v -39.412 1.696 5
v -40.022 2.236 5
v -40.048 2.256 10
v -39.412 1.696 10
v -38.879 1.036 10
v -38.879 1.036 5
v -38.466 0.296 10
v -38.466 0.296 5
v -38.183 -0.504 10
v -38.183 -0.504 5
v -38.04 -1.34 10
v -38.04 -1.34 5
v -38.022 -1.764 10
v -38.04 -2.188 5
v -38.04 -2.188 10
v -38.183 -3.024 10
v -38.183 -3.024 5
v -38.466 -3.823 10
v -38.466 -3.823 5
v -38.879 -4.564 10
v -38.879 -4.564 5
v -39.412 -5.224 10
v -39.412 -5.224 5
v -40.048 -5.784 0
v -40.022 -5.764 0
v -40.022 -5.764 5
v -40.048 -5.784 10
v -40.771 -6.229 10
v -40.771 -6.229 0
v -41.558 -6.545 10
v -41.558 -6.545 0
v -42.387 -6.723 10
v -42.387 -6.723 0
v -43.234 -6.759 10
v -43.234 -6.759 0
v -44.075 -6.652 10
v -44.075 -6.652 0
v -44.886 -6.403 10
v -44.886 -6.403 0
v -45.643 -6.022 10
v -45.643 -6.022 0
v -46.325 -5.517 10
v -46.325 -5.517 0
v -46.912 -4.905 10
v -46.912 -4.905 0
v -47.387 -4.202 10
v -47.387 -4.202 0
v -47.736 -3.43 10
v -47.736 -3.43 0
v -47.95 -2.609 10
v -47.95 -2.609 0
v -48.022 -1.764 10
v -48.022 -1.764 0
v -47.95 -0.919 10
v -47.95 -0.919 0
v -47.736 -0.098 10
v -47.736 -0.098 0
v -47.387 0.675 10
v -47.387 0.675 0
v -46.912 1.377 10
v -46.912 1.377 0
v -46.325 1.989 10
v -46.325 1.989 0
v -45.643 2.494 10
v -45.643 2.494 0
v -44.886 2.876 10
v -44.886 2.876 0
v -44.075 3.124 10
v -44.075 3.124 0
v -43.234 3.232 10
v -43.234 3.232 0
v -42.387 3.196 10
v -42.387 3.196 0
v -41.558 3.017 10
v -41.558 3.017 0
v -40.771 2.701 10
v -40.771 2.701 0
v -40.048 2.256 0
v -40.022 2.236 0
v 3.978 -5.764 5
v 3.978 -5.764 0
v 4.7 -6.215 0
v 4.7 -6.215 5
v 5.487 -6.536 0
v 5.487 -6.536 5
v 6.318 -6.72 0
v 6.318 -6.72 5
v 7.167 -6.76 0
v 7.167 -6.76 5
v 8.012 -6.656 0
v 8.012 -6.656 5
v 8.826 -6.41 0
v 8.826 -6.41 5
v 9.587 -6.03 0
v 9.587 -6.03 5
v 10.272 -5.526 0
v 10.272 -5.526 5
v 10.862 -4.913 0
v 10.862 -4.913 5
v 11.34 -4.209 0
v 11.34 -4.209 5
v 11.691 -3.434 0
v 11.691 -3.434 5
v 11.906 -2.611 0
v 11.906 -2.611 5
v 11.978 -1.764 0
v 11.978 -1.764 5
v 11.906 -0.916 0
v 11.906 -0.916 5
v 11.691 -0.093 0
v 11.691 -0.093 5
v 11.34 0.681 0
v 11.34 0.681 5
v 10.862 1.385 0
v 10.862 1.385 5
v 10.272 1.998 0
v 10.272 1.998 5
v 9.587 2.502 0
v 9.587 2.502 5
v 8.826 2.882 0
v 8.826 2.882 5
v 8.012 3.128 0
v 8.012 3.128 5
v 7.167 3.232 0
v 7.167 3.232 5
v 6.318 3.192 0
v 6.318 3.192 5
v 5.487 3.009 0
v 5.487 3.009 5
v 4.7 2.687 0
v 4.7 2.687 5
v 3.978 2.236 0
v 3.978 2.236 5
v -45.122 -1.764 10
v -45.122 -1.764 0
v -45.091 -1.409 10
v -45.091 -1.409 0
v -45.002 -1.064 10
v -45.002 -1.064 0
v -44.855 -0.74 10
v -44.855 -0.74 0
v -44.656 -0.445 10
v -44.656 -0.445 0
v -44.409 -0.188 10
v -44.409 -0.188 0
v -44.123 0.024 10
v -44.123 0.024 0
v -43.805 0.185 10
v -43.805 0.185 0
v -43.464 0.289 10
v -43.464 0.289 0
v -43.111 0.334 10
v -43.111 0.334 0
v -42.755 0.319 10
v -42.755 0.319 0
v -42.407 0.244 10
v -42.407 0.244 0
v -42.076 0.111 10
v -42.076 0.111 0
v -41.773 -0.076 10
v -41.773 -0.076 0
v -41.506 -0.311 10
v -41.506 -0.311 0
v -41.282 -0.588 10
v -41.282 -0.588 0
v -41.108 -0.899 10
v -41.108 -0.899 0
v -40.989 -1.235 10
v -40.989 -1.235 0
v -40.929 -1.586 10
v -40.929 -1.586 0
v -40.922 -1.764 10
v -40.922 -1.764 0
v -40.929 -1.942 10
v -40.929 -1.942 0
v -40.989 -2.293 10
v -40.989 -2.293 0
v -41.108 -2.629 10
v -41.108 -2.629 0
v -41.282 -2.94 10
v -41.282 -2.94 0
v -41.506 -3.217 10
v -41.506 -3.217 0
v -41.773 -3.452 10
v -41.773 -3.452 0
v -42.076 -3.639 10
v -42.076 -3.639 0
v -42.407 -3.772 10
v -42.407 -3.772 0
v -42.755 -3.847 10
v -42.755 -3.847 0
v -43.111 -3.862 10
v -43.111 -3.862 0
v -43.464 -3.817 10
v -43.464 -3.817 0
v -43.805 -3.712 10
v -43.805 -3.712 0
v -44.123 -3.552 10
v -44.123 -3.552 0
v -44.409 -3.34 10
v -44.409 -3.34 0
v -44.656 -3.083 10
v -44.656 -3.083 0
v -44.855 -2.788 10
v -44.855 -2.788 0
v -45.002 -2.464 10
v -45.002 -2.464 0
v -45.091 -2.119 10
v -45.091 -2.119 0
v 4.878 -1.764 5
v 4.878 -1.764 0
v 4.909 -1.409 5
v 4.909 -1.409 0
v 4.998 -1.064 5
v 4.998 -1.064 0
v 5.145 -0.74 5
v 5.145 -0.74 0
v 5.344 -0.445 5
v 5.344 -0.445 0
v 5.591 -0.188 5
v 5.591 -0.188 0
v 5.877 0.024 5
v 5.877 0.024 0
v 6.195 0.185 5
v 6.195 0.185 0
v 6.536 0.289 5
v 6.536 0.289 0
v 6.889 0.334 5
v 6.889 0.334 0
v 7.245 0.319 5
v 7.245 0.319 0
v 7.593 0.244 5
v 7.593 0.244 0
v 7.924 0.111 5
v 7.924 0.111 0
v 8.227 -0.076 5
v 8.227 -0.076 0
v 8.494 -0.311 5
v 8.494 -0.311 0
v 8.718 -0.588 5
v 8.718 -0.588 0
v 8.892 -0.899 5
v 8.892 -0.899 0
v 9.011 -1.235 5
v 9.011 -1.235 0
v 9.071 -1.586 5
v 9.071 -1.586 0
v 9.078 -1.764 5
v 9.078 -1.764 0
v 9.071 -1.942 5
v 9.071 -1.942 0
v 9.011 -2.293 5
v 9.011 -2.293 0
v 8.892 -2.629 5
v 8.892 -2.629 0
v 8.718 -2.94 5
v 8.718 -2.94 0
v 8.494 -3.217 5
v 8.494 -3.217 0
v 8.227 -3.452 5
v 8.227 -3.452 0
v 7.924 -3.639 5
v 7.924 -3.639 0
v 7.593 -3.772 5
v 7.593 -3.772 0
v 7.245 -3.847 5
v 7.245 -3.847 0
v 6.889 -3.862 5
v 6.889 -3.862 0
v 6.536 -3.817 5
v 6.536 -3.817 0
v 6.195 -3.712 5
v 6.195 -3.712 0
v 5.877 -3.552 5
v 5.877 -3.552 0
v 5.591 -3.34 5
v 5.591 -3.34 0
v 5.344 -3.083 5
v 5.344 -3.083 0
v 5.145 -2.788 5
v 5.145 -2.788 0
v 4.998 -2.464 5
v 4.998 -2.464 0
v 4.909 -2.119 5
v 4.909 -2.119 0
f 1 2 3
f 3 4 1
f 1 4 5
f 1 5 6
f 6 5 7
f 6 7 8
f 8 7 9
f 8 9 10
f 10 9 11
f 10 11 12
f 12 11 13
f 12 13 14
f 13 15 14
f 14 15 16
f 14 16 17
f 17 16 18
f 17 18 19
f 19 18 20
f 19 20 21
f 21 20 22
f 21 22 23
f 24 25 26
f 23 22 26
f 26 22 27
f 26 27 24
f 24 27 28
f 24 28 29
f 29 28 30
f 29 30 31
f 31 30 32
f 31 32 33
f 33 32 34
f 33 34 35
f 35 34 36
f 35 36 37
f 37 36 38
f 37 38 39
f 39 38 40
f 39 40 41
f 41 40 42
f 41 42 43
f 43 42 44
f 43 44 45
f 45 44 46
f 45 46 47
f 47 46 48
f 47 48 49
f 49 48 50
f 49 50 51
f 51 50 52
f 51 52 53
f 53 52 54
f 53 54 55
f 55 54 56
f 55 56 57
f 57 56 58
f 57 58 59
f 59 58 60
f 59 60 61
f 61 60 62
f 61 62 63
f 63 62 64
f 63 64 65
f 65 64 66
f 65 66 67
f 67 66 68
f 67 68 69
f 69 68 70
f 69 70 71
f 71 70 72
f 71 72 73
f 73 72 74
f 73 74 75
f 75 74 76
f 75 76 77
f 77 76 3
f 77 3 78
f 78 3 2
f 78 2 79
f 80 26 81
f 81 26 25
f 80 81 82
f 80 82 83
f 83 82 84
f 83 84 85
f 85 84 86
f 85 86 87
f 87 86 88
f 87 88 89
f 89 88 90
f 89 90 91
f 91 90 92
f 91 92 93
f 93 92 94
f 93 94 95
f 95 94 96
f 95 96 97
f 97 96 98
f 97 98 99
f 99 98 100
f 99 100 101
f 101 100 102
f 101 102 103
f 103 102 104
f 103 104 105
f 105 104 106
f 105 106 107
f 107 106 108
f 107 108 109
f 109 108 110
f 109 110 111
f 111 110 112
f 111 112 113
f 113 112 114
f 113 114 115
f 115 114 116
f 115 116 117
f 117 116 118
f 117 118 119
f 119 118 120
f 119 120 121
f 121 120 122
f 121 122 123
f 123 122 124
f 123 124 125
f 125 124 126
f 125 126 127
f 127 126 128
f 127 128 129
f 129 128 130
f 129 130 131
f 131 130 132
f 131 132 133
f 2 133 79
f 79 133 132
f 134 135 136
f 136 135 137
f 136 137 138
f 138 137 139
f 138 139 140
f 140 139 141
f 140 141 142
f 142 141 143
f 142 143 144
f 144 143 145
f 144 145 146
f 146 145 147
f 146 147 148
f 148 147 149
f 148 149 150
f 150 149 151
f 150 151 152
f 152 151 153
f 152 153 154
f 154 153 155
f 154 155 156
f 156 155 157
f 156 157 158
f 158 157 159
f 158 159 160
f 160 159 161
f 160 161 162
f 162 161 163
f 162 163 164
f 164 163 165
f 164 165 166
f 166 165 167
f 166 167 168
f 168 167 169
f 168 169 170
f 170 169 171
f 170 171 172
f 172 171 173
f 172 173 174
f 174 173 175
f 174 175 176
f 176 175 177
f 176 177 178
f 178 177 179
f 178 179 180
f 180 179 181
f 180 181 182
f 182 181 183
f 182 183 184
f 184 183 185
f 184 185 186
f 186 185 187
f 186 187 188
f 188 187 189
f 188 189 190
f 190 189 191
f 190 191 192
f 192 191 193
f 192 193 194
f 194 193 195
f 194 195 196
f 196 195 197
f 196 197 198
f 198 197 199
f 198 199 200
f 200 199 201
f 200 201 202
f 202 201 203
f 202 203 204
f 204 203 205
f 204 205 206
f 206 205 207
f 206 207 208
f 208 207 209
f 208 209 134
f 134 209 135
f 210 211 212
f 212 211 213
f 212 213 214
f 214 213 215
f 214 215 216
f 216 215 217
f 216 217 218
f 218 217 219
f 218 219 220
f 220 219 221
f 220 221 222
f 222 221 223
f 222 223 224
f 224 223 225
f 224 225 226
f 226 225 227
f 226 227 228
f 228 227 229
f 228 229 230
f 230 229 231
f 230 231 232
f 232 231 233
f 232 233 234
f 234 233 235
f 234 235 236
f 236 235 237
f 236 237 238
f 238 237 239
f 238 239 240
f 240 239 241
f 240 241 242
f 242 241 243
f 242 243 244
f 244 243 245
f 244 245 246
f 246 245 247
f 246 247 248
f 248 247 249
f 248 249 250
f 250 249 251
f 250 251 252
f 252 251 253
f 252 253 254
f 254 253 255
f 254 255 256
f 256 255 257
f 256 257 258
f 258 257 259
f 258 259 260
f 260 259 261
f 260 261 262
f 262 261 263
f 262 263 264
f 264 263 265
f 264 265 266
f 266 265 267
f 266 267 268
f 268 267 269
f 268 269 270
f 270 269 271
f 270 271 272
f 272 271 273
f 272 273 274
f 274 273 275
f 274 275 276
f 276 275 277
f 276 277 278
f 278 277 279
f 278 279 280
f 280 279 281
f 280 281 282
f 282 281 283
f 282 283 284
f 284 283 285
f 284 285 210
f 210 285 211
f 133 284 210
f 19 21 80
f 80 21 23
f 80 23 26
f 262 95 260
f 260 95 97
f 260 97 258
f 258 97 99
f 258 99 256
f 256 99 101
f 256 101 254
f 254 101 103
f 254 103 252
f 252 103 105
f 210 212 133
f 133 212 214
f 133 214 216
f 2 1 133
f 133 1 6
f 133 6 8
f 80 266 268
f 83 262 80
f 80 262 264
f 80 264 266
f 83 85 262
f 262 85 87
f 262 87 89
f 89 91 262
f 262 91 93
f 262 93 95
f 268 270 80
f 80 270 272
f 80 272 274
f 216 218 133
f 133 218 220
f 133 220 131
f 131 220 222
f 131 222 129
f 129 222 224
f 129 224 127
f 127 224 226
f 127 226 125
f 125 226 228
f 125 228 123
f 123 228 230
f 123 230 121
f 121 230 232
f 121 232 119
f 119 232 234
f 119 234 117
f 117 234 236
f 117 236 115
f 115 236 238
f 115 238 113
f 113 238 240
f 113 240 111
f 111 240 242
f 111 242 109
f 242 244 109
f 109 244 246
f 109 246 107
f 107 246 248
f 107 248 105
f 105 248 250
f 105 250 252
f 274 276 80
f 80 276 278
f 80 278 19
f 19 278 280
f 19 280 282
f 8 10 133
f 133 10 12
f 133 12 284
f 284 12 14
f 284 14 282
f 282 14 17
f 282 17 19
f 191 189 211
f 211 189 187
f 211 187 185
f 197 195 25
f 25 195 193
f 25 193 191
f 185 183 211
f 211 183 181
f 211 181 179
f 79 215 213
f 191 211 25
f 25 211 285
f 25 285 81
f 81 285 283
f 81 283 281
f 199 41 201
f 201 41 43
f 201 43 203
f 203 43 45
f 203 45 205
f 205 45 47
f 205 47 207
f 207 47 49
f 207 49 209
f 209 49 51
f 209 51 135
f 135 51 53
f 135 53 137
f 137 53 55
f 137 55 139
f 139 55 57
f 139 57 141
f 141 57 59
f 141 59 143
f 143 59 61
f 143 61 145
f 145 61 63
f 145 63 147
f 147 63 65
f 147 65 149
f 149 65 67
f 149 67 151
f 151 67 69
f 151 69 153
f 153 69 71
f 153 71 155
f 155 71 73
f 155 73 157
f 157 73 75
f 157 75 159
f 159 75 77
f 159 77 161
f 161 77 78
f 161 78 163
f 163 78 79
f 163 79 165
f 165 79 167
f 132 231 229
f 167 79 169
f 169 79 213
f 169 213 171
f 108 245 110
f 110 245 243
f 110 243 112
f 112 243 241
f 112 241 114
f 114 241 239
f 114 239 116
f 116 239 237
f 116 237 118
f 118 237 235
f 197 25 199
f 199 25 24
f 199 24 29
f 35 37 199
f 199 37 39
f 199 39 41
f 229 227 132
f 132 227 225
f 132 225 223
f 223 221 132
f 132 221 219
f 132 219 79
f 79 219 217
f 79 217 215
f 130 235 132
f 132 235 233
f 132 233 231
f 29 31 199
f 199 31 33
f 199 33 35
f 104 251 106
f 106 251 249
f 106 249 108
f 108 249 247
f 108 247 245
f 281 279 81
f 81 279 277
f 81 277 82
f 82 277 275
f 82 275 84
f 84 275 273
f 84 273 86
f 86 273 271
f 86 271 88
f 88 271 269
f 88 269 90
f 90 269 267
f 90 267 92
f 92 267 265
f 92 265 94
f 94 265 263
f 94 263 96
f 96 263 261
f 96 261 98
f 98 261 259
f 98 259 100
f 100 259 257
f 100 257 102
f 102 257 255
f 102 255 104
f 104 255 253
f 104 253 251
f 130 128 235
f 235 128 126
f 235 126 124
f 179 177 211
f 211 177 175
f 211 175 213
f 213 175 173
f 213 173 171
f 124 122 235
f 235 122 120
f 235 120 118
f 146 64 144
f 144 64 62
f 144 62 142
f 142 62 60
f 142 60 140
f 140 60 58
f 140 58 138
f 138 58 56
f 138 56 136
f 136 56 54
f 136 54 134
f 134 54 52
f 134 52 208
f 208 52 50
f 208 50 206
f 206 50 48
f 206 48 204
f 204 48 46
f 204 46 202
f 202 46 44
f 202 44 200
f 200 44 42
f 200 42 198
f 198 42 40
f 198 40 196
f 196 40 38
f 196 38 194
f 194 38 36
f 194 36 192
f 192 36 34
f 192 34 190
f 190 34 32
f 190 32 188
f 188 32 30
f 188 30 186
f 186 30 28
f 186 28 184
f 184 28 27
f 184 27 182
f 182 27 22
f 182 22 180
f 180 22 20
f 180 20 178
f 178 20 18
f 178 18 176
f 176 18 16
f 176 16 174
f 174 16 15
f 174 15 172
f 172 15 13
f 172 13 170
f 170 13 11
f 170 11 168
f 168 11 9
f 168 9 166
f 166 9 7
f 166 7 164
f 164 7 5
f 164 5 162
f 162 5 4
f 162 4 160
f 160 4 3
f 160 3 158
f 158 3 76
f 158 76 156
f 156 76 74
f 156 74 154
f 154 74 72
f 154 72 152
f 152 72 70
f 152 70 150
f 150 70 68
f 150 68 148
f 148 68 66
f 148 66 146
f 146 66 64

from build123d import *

# Parameters (mm, degrees)
SKETCH2_R           = 2.1
BOSS_EXTRUDE1_DEPTH = 5
SKETCH3_R           = 5
SKETCH3_R_2         = 2.1
BOSS_EXTRUDE2_DEPTH = 5


with BuildPart() as part:
    # Sketch2 → Boss-Extrude1 (new body)
    with BuildSketch(Plane.XY):
        with BuildLine():
            ThreePointArc((-40.021658011, 2.236067977), (-48.021658011, -1.763932023), (-40.021658011, -5.763932023))
            Line((-40.021658011, -5.763932023), (-40.021658011, 2.236067977))
        make_face()
        with Locations((-43.021658011, -1.763932023)):
            Circle(SKETCH2_R, mode=Mode.SUBTRACT)
        with BuildLine():
            Line((-40.021658011, 2.236067977), (-40.021658011, -5.763932023))
            ThreePointArc((-40.021658011, -5.763932023), (-38.549522056, -4), (-38.021658011, -1.763932023))
            ThreePointArc((-38.021658011, -1.763932023), (-38.549522056, 0.472135955), (-40.021658011, 2.236067977))
        make_face()
        with BuildLine():
            ThreePointArc((-38.021658011, -1.763932023), (-38.549522056, -4), (-40.021658011, -5.763932023))
            Line((-40.021658011, -5.763932023), (3.978341989, -5.763932023))
            ThreePointArc((3.978341989, -5.763932023), (1.978341989, -1.763932023), (3.978341989, 2.236067977))
            Line((3.978341989, 2.236067977), (-40.021658011, 2.236067977))
            ThreePointArc((-40.021658011, 2.236067977), (-38.549522056, 0.472135955), (-38.021658011, -1.763932023))
        make_face()
        with BuildLine():
            Line((3.978341989, 2.236067977), (3.978341989, -5.763932023))
            ThreePointArc((3.978341989, -5.763932023), (9.214409967, -6.236067977), (11.978341989, -1.763932023))
            ThreePointArc((11.978341989, -1.763932023), (9.214409967, 2.708203932), (3.978341989, 2.236067977))
        make_face()
        with Locations((6.978341989, -1.763932023)):
            Circle(SKETCH2_R, mode=Mode.SUBTRACT)
        with BuildLine():
            ThreePointArc((3.978341989, 2.236067977), (1.978341989, -1.763932023), (3.978341989, -5.763932023))
            Line((3.978341989, -5.763932023), (3.978341989, 2.236067977))
        make_face()
    extrude(amount=BOSS_EXTRUDE1_DEPTH)

    # Sketch3 → Boss-Extrude2 (add)
    with BuildSketch(Plane.XY.offset(5)):
        with Locations((-43.021658011, -1.763932023)):
            Circle(SKETCH3_R)
        with Locations((-43.021658011, -1.763932023)):
            Circle(SKETCH3_R_2, mode=Mode.SUBTRACT)
    extrude(amount=BOSS_EXTRUDE2_DEPTH)


solid = part.part
